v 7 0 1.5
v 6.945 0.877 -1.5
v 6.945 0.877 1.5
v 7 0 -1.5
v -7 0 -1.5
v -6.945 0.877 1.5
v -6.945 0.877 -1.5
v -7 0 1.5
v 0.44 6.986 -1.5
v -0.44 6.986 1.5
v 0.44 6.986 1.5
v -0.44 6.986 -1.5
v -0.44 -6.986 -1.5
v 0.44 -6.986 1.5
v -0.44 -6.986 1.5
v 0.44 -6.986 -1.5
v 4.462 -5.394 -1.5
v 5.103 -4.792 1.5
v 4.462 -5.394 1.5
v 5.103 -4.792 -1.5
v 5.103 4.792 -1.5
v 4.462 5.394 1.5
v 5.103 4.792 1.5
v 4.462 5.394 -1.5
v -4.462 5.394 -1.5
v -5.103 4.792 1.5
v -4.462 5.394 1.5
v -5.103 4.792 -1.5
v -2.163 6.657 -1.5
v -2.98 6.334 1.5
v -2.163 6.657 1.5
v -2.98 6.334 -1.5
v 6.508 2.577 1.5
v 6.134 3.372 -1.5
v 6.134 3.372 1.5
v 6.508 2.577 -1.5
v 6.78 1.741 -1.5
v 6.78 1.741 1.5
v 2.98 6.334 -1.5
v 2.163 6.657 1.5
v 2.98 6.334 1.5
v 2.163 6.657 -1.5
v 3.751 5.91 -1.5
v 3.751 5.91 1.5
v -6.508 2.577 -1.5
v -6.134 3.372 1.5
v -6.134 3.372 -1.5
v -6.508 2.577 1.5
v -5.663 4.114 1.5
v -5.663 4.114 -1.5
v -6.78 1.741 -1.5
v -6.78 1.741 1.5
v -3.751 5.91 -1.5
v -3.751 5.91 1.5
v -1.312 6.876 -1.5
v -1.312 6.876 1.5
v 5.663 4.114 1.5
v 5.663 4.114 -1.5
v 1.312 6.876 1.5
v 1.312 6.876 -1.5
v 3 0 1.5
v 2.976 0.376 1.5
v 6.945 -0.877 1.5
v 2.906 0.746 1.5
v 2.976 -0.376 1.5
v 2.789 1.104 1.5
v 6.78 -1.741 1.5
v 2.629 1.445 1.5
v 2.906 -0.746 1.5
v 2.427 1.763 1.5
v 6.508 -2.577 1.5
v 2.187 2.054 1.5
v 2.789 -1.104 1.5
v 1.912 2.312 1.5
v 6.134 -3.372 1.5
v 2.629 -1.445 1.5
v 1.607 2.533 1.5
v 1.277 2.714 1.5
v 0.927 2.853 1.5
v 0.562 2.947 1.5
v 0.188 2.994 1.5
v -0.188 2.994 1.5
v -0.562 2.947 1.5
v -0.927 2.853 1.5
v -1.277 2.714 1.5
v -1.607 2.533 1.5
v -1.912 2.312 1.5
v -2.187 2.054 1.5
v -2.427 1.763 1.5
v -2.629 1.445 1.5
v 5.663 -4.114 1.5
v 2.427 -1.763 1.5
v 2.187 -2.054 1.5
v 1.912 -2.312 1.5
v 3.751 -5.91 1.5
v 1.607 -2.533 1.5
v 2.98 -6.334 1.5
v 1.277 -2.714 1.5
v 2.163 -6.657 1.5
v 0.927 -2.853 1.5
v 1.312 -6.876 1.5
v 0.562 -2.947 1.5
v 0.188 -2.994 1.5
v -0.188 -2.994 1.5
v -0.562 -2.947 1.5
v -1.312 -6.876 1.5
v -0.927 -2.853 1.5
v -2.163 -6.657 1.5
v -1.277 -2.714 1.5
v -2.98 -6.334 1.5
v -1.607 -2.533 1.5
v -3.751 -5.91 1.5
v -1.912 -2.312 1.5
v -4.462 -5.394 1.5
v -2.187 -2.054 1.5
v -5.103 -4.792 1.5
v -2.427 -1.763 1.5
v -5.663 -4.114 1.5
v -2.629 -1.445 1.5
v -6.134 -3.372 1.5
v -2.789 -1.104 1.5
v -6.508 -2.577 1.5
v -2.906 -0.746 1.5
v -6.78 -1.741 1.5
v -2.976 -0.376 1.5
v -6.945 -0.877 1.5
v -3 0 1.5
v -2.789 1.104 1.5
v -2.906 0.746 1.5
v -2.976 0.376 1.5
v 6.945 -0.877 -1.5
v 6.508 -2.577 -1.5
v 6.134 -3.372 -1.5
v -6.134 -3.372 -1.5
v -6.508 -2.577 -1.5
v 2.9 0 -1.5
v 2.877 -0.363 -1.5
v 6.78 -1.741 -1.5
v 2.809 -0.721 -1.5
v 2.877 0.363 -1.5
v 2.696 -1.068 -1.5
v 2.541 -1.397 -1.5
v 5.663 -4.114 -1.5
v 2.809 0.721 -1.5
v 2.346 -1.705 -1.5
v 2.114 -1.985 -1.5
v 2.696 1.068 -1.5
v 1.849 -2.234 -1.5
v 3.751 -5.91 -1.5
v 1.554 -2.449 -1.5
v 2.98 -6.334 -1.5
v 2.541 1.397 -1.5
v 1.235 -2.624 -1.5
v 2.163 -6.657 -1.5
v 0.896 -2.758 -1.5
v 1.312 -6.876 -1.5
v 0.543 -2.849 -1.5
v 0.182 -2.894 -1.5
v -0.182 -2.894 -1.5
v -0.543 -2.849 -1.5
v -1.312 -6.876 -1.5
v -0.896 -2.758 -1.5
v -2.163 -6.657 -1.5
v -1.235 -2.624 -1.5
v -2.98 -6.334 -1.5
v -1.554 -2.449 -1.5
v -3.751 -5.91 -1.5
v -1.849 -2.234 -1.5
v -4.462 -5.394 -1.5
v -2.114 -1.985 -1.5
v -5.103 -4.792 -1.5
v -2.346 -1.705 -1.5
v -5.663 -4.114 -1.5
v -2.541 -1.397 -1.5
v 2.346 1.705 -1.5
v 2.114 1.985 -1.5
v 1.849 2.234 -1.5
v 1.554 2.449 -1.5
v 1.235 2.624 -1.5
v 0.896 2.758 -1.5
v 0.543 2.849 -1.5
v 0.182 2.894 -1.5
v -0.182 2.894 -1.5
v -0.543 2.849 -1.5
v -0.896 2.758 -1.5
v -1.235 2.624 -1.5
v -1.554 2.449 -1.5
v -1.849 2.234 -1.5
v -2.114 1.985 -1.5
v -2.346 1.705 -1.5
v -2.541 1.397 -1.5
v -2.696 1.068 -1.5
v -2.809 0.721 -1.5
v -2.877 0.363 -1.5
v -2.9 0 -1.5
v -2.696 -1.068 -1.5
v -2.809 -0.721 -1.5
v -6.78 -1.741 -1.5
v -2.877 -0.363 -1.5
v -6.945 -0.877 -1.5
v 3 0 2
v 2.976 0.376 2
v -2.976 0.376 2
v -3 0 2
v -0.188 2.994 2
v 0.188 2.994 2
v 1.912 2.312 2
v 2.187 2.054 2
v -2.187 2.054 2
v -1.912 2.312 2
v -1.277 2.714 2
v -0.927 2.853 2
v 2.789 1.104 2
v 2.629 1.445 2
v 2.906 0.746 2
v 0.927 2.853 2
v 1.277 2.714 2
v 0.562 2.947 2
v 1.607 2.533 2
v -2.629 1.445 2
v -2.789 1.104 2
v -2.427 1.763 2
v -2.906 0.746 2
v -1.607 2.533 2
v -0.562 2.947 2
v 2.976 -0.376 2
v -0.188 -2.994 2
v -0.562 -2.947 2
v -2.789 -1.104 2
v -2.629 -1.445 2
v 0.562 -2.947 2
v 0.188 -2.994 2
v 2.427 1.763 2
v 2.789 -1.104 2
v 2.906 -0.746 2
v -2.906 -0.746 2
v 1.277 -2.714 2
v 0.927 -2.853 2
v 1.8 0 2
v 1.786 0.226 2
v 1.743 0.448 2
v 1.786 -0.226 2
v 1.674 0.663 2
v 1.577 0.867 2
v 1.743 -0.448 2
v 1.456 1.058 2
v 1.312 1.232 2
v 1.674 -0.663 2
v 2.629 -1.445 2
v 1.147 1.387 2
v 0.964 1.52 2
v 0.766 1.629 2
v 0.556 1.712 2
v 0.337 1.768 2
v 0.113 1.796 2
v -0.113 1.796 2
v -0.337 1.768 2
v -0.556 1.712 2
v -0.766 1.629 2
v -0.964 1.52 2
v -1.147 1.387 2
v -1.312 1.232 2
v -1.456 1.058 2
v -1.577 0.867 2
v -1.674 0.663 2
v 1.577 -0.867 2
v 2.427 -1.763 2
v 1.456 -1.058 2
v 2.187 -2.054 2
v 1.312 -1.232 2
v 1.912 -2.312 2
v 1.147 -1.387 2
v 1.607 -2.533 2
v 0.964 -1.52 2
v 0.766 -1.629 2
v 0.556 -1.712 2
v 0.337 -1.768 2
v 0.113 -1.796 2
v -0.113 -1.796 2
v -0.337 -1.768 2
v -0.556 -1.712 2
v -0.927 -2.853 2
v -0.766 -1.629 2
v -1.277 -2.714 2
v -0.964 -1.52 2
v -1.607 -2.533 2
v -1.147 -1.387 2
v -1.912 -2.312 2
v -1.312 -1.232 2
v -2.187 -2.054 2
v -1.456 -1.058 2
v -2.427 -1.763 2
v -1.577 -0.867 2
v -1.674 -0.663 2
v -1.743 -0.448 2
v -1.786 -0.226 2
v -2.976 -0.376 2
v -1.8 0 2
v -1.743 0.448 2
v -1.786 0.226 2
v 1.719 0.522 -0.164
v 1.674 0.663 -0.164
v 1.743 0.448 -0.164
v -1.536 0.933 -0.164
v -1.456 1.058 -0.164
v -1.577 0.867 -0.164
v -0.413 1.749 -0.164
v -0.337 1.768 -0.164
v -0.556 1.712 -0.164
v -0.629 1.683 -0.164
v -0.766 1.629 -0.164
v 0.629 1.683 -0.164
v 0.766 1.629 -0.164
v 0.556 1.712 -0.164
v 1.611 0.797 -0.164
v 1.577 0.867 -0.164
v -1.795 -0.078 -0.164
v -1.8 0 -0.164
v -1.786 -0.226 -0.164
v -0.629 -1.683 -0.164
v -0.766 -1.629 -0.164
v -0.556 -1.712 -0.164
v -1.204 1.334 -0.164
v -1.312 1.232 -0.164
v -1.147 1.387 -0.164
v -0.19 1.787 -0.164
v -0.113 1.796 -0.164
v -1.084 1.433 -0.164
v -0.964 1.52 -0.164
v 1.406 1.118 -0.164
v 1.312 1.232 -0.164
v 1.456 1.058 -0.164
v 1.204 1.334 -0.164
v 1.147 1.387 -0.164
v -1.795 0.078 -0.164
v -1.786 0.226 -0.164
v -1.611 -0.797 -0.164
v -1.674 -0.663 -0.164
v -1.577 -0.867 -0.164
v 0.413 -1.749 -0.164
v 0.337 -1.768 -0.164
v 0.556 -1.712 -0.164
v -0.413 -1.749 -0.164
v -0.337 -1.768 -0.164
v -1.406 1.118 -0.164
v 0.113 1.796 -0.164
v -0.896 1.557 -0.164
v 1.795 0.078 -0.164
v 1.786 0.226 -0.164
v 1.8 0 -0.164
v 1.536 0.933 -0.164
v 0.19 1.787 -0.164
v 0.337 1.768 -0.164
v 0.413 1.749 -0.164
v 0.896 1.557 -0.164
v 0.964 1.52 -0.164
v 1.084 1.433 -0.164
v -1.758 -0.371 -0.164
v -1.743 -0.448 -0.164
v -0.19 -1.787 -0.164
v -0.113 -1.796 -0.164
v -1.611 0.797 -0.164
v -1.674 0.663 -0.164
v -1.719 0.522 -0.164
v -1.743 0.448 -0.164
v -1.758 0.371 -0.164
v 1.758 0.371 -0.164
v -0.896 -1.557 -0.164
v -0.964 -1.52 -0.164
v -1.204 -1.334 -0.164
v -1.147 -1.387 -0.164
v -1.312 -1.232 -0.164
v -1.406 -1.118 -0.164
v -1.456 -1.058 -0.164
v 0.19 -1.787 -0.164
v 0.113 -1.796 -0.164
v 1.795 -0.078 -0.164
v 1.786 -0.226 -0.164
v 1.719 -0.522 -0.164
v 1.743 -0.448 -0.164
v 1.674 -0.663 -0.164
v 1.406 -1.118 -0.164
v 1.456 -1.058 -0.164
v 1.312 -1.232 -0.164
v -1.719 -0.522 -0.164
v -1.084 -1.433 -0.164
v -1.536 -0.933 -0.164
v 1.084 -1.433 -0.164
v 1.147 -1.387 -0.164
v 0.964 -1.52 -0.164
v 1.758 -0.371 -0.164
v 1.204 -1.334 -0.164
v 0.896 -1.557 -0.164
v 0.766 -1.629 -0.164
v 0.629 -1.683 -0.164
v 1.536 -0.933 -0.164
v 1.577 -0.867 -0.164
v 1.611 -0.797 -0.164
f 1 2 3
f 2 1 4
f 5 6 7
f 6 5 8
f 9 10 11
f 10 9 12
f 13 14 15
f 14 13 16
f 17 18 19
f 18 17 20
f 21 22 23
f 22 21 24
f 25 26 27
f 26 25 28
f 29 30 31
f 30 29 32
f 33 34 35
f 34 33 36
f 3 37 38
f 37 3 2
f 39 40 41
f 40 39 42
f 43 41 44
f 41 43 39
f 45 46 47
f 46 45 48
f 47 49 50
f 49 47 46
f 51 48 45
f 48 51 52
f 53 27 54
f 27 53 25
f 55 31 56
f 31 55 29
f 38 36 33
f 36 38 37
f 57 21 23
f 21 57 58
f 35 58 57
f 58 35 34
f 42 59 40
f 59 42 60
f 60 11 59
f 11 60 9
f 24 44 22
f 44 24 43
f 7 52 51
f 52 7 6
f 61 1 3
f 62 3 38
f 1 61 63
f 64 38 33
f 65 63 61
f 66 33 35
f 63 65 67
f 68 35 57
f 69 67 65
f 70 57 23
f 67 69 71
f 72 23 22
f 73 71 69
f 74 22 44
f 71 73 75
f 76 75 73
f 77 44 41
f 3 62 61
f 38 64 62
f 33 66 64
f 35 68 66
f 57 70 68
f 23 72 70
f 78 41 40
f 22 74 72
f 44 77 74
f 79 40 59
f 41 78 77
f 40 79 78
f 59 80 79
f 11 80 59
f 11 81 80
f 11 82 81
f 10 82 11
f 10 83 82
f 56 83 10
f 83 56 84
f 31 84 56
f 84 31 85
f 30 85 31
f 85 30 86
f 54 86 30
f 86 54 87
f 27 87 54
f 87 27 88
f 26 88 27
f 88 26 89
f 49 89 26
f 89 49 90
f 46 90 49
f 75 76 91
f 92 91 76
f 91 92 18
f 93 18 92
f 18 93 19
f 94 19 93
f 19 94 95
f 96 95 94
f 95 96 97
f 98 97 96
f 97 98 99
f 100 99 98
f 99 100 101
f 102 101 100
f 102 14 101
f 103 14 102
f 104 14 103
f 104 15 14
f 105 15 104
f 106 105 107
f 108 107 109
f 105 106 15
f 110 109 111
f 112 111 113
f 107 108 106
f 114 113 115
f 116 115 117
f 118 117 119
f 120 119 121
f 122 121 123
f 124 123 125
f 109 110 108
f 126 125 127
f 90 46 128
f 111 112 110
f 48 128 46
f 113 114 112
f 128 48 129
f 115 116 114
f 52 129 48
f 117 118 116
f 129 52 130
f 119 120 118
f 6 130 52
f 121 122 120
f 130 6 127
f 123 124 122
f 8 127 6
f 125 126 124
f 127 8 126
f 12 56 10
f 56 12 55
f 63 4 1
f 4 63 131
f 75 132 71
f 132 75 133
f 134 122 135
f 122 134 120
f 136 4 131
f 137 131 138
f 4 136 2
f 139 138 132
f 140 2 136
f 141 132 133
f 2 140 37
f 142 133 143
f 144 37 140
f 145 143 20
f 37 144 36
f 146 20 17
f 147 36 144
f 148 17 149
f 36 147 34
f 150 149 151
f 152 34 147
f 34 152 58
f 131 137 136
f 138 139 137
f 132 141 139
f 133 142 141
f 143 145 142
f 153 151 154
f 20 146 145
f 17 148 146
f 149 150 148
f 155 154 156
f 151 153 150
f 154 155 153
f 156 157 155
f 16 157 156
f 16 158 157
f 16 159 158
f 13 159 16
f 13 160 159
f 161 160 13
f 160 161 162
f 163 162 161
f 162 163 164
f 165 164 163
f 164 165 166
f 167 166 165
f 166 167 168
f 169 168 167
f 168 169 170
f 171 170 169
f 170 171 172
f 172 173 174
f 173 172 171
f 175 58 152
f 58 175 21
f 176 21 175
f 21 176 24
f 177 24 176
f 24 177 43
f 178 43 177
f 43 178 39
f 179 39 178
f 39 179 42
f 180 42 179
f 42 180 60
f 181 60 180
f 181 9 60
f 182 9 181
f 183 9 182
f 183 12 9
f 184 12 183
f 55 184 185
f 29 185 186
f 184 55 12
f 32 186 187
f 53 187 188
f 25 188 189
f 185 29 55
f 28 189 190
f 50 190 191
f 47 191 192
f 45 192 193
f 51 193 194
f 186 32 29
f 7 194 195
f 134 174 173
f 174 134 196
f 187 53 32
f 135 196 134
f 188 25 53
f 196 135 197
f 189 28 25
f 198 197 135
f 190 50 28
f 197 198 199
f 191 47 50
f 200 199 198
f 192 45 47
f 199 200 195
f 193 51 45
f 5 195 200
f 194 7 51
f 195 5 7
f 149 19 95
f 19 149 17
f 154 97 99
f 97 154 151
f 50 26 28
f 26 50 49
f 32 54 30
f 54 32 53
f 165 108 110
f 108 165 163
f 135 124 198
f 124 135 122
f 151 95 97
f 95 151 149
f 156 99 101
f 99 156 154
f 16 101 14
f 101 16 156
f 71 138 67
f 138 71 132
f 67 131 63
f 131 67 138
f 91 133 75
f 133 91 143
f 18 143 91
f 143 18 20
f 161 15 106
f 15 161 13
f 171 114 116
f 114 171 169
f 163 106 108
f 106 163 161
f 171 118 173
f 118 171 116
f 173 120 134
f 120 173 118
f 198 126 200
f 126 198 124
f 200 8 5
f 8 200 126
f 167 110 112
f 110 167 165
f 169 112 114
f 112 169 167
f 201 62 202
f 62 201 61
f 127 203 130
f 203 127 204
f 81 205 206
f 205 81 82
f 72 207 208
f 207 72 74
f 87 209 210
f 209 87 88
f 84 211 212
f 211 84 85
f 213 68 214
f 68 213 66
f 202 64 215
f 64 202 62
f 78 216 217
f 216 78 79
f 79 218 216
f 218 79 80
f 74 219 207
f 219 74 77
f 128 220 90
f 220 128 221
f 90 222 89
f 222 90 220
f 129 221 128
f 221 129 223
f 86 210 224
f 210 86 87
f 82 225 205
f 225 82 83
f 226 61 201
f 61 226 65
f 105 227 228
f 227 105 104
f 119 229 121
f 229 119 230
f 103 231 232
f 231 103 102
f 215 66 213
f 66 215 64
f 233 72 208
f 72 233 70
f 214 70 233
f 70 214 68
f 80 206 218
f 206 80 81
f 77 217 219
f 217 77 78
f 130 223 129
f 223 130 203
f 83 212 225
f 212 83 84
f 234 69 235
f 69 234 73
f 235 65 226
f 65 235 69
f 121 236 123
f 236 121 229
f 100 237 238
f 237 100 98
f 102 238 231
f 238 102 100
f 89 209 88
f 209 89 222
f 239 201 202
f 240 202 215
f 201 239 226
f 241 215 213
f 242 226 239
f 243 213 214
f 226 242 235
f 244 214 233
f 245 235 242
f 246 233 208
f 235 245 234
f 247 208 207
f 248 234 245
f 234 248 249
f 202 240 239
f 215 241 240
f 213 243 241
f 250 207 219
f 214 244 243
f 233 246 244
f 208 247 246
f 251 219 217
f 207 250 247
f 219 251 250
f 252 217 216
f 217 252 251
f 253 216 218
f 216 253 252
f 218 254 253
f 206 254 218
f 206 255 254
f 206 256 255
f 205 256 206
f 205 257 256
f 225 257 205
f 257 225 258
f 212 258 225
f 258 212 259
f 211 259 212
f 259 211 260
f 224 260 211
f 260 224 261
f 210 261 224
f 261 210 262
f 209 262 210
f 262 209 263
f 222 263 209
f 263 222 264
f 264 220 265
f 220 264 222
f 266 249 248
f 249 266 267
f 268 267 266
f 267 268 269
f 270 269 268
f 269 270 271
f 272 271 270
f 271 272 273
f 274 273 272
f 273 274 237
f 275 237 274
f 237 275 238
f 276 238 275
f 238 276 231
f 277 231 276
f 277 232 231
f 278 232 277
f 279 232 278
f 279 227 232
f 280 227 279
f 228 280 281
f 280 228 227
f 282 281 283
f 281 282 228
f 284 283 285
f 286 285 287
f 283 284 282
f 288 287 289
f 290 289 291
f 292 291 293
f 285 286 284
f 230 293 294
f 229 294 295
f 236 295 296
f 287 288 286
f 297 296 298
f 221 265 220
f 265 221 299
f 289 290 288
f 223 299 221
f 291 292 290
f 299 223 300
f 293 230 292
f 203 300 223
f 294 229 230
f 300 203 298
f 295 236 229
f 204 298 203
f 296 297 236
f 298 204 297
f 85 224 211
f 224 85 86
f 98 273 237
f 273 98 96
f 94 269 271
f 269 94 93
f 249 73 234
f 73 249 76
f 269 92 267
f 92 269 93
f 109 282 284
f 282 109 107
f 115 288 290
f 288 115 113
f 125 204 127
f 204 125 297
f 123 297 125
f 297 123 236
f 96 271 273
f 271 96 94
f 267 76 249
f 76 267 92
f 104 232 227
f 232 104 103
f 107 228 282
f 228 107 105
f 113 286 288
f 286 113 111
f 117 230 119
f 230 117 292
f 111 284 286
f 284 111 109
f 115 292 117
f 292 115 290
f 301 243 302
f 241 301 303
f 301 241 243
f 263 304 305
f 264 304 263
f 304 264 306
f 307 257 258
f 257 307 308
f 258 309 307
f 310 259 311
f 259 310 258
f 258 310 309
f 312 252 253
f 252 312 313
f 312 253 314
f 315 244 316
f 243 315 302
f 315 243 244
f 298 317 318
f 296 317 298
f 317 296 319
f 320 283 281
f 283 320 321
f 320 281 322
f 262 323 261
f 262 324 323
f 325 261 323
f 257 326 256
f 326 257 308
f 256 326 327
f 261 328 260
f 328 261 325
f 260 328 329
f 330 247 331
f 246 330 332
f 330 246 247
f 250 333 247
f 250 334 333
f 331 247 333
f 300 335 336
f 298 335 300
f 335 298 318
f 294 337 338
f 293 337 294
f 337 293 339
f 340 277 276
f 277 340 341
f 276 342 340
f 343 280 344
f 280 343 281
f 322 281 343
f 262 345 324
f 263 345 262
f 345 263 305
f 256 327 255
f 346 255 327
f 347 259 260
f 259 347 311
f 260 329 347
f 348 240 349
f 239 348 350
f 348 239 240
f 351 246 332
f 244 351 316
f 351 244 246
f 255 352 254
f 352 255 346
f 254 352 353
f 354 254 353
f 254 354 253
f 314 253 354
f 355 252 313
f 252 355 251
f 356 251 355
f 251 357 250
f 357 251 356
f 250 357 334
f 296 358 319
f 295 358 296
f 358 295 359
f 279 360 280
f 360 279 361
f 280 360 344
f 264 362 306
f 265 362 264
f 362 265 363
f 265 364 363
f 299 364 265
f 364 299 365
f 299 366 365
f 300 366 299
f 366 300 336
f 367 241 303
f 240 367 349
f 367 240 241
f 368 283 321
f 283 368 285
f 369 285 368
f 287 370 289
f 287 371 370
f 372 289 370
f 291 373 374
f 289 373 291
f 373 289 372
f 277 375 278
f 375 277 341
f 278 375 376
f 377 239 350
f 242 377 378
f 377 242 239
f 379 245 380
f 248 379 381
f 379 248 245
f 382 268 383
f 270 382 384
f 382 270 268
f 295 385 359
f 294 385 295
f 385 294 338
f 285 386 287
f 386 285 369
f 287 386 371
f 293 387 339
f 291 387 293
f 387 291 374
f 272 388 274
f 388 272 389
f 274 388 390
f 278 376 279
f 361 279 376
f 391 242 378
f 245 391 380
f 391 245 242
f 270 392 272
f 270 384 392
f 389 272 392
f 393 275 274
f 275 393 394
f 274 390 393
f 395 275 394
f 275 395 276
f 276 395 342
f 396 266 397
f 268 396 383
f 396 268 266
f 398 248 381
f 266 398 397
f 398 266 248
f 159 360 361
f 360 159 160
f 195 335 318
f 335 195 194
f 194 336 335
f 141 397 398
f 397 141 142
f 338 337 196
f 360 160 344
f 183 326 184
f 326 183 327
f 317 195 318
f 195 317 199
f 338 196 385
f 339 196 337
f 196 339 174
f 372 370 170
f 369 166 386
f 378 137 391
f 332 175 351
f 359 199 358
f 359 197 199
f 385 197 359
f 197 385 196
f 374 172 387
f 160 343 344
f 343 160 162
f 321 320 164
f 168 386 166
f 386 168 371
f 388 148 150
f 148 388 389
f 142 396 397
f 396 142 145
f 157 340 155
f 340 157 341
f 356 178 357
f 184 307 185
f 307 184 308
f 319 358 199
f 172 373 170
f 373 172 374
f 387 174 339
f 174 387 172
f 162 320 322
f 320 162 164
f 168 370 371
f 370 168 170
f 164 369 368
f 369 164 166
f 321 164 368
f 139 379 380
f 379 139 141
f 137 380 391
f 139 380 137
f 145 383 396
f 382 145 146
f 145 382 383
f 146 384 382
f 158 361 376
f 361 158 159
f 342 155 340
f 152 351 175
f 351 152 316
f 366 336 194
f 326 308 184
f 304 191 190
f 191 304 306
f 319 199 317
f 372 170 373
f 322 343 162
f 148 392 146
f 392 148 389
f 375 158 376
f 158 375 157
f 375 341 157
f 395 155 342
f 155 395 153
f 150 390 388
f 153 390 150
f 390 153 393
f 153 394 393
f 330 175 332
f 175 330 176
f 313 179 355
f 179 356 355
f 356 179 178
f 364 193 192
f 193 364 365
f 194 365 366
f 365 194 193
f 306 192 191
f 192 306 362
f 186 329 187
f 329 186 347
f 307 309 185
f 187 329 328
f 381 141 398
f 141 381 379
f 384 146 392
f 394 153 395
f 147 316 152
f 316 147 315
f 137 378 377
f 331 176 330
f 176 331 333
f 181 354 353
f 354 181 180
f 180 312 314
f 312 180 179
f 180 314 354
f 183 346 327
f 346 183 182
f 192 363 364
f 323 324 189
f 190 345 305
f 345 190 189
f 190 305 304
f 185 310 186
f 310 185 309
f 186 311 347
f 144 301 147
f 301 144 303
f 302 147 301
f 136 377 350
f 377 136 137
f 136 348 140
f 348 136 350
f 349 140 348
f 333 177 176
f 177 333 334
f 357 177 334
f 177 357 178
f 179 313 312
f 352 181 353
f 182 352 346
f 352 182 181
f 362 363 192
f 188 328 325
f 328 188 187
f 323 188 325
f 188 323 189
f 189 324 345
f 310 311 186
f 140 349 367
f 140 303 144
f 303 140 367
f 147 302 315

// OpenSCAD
$fn = 50;


difference() {
	union() {
		translate(v = [0, 0, -1.5000000000]) {
			cylinder(h = 3, r = 7.0000000000);
		}
		translate(v = [0, 0, -1.5000000000]) {
			cylinder(h = 3.5000000000, r = 3.0000000000);
		}
	}
	union() {
		translate(v = [0, 0, -1.5000000000]) {
			rotate(a = [0, 180, 0]) {
				difference() {
					union() {
						translate(v = [0, 0, -3.5000000000]) {
							cylinder(h = 3.5000000000, r = 1.5000000000);
						}
						translate(v = [0, 0, -3.5000000000]) {
							cylinder(h = 3.5000000000, r = 1.8000000000);
						}
						translate(v = [0, 0, -1.7000000000]) {
							cylinder(h = 1.7000000000, r1 = 1.5000000000, r2 = 2.9000000000);
						}
						translate(v = [0, 0, -3.5000000000]) {
							cylinder(h = 3.5000000000, r = 1.5000000000);
						}
					}
					union();
				}
			}
		}
		translate(v = [0, 0, -50.0000000000]) {
			cylinder(h = 100, r = 1.5000000000);
		}
	}
}
